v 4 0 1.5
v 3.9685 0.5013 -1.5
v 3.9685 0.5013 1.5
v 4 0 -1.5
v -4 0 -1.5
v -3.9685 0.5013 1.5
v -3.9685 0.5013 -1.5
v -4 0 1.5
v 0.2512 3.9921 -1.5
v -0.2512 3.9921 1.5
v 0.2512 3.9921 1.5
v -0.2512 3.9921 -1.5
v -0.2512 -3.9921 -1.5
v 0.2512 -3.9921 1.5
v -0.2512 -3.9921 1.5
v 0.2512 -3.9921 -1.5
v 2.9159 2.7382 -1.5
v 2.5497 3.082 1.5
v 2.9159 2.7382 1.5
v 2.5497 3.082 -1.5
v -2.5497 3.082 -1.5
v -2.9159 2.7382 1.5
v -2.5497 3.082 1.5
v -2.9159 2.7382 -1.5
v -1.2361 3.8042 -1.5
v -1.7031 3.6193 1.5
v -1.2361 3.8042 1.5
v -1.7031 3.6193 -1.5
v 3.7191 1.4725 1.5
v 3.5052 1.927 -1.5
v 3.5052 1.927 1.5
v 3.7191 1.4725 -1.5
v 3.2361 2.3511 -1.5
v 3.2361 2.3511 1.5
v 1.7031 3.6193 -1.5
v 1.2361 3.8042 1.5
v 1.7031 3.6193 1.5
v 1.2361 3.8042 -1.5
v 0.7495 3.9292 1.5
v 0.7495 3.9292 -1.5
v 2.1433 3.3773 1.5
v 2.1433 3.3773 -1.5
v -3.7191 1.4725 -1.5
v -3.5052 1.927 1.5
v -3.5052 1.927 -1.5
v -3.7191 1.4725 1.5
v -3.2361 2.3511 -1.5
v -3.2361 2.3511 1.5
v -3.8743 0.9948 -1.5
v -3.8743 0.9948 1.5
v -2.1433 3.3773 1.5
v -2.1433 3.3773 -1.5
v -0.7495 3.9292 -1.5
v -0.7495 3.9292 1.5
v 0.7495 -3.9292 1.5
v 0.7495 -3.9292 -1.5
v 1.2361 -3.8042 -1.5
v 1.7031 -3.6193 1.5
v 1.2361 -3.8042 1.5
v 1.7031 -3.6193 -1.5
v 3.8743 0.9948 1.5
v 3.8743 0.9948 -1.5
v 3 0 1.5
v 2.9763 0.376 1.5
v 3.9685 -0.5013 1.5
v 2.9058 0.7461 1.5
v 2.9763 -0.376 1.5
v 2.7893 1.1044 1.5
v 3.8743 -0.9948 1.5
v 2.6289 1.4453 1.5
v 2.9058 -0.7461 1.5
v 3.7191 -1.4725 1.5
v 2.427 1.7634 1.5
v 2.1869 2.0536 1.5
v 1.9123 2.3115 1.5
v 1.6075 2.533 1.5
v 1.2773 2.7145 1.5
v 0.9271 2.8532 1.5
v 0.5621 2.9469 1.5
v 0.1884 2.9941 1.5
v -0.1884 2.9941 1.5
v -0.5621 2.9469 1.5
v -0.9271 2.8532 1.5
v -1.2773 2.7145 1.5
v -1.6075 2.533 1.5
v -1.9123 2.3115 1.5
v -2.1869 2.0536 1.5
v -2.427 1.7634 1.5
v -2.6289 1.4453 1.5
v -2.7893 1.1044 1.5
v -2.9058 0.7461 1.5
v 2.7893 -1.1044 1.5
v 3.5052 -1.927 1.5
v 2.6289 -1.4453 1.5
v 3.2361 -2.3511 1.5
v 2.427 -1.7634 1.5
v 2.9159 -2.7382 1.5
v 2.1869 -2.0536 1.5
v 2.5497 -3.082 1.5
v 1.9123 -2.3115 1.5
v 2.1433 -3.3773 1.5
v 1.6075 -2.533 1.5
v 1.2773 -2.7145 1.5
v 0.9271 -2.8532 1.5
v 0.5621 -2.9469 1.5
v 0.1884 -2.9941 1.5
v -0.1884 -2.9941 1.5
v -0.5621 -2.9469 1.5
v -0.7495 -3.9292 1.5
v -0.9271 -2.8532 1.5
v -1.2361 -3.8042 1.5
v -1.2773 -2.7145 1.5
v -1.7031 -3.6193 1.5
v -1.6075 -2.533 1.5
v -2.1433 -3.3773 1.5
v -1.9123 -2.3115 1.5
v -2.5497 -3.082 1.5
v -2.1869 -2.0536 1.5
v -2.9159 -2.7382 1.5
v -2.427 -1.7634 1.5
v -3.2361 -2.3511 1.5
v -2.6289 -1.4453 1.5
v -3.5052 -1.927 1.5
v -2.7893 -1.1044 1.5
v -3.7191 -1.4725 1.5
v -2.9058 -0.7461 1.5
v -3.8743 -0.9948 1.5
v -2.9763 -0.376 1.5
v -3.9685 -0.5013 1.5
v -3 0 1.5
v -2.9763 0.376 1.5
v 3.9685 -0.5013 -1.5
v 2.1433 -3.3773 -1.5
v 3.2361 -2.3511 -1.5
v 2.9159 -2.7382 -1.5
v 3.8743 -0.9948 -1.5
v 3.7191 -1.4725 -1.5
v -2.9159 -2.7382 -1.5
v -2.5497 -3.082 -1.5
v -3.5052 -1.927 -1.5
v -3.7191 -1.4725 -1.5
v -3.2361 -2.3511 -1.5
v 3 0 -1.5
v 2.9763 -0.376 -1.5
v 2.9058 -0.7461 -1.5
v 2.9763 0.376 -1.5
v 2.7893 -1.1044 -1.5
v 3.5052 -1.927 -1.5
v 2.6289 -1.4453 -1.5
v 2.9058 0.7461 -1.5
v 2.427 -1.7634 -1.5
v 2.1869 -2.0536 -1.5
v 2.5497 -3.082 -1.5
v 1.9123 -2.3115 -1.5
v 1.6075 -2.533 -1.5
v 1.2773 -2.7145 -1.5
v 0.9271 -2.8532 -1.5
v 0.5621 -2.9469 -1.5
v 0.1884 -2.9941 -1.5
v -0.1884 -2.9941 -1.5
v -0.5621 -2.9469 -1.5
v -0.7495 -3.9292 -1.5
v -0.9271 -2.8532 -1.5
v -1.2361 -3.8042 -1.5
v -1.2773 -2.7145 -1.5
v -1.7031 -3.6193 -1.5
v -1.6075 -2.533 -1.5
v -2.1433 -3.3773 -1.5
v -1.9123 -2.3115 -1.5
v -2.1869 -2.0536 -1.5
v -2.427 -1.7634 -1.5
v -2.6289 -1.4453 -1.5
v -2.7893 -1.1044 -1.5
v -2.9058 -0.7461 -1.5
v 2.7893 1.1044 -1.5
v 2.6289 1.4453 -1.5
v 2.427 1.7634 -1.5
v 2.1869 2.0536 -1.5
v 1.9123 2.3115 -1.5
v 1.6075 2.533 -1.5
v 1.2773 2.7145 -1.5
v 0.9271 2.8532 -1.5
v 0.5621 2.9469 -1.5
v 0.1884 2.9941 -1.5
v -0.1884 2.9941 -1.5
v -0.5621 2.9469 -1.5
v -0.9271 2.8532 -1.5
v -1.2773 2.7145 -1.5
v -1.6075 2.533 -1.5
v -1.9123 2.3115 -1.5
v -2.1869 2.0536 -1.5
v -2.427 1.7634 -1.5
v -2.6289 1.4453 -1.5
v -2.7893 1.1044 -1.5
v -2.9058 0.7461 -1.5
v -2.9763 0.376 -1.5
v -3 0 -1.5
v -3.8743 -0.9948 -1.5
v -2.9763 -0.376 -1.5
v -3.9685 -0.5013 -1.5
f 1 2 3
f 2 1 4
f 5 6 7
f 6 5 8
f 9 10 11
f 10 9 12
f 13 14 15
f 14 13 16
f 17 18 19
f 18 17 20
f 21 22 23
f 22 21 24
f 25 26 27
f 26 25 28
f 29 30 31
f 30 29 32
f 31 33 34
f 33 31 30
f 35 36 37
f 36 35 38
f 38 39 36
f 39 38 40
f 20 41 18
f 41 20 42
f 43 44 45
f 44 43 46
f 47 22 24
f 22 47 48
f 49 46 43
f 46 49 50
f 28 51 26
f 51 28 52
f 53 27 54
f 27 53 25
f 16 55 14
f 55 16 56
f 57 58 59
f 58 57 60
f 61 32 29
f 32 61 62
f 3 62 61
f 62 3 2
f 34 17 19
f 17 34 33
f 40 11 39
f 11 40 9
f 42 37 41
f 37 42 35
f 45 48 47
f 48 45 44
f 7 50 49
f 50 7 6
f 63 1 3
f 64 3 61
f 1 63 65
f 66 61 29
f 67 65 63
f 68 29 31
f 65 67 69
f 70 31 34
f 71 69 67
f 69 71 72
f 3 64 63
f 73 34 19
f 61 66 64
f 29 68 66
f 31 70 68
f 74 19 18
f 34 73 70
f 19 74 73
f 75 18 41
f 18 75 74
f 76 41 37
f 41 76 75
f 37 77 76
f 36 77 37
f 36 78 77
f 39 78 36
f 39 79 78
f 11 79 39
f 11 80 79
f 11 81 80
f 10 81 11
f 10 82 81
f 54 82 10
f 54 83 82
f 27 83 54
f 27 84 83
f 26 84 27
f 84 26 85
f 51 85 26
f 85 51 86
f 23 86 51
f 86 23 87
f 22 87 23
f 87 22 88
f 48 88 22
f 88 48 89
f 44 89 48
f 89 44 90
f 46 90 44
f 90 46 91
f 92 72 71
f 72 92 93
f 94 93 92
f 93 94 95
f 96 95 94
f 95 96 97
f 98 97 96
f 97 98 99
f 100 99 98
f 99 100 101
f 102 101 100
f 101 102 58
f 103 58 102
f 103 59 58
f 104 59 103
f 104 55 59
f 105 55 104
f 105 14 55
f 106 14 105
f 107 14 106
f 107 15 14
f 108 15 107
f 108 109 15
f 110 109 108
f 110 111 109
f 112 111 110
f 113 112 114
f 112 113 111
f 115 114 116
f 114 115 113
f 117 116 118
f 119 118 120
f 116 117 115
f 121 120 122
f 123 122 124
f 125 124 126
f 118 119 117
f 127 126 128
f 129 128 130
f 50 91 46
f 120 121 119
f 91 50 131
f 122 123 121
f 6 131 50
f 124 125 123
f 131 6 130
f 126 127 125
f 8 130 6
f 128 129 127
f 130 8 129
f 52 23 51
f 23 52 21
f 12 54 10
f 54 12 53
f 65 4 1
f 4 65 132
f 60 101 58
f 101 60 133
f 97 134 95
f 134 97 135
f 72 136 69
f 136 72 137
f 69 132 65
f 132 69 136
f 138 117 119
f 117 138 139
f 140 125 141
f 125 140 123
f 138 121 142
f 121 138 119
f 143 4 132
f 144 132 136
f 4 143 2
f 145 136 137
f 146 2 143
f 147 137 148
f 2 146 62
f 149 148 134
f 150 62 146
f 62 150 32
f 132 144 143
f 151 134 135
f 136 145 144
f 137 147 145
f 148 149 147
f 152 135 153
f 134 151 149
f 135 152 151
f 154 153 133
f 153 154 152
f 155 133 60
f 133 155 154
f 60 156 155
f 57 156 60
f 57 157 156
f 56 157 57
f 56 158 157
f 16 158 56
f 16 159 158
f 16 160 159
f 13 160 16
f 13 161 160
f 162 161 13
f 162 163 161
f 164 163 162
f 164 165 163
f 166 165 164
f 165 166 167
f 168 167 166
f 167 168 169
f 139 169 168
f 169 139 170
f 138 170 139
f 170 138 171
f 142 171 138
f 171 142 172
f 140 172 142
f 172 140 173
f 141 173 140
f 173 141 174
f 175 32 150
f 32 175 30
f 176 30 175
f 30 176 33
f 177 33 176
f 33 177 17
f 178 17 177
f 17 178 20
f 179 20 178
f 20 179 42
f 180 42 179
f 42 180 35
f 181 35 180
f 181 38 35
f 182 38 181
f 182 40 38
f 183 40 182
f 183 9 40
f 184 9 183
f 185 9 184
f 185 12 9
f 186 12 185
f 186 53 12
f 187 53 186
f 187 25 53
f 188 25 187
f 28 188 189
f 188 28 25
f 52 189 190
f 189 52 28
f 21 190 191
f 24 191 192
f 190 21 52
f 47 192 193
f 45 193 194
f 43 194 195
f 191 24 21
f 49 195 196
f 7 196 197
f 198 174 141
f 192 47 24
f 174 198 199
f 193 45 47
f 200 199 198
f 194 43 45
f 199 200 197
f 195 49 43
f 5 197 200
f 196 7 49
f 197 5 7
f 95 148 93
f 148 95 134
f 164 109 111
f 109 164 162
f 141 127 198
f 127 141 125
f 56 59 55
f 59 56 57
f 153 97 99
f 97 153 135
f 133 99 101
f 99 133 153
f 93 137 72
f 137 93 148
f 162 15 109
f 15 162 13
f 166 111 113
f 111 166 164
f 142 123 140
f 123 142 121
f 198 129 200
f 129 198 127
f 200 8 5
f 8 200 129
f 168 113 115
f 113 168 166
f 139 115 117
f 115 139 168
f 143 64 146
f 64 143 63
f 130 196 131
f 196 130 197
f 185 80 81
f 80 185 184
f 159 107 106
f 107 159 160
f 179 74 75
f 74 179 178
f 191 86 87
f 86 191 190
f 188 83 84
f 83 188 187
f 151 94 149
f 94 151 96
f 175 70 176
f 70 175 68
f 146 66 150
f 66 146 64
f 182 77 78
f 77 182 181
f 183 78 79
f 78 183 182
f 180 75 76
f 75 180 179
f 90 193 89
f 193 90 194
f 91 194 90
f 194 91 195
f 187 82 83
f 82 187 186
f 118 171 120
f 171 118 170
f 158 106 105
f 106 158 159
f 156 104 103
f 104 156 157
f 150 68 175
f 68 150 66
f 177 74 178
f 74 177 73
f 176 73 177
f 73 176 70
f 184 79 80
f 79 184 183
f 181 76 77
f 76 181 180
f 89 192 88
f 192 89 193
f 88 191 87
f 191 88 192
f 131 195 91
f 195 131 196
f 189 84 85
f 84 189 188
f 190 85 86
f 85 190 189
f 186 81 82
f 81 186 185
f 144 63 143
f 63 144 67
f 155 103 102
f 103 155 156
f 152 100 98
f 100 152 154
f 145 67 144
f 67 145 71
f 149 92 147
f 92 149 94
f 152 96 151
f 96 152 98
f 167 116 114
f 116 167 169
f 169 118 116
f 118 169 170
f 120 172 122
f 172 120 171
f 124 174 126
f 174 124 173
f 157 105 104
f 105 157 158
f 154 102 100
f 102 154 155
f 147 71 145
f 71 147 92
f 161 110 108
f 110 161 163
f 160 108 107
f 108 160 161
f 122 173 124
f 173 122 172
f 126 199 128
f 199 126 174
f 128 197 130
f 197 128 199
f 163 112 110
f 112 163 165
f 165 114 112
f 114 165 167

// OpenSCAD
$fn = 50;


difference() {
	union() {
		translate(v = [0, 0, -1.5000000000]) {
			cylinder(h = 3, r = 4.0000000000);
		}
	}
	union() {
		translate(v = [0, 0, -100.0000000000]) {
			cylinder(h = 200, r = 3.0000000000);
		}
	}
}
